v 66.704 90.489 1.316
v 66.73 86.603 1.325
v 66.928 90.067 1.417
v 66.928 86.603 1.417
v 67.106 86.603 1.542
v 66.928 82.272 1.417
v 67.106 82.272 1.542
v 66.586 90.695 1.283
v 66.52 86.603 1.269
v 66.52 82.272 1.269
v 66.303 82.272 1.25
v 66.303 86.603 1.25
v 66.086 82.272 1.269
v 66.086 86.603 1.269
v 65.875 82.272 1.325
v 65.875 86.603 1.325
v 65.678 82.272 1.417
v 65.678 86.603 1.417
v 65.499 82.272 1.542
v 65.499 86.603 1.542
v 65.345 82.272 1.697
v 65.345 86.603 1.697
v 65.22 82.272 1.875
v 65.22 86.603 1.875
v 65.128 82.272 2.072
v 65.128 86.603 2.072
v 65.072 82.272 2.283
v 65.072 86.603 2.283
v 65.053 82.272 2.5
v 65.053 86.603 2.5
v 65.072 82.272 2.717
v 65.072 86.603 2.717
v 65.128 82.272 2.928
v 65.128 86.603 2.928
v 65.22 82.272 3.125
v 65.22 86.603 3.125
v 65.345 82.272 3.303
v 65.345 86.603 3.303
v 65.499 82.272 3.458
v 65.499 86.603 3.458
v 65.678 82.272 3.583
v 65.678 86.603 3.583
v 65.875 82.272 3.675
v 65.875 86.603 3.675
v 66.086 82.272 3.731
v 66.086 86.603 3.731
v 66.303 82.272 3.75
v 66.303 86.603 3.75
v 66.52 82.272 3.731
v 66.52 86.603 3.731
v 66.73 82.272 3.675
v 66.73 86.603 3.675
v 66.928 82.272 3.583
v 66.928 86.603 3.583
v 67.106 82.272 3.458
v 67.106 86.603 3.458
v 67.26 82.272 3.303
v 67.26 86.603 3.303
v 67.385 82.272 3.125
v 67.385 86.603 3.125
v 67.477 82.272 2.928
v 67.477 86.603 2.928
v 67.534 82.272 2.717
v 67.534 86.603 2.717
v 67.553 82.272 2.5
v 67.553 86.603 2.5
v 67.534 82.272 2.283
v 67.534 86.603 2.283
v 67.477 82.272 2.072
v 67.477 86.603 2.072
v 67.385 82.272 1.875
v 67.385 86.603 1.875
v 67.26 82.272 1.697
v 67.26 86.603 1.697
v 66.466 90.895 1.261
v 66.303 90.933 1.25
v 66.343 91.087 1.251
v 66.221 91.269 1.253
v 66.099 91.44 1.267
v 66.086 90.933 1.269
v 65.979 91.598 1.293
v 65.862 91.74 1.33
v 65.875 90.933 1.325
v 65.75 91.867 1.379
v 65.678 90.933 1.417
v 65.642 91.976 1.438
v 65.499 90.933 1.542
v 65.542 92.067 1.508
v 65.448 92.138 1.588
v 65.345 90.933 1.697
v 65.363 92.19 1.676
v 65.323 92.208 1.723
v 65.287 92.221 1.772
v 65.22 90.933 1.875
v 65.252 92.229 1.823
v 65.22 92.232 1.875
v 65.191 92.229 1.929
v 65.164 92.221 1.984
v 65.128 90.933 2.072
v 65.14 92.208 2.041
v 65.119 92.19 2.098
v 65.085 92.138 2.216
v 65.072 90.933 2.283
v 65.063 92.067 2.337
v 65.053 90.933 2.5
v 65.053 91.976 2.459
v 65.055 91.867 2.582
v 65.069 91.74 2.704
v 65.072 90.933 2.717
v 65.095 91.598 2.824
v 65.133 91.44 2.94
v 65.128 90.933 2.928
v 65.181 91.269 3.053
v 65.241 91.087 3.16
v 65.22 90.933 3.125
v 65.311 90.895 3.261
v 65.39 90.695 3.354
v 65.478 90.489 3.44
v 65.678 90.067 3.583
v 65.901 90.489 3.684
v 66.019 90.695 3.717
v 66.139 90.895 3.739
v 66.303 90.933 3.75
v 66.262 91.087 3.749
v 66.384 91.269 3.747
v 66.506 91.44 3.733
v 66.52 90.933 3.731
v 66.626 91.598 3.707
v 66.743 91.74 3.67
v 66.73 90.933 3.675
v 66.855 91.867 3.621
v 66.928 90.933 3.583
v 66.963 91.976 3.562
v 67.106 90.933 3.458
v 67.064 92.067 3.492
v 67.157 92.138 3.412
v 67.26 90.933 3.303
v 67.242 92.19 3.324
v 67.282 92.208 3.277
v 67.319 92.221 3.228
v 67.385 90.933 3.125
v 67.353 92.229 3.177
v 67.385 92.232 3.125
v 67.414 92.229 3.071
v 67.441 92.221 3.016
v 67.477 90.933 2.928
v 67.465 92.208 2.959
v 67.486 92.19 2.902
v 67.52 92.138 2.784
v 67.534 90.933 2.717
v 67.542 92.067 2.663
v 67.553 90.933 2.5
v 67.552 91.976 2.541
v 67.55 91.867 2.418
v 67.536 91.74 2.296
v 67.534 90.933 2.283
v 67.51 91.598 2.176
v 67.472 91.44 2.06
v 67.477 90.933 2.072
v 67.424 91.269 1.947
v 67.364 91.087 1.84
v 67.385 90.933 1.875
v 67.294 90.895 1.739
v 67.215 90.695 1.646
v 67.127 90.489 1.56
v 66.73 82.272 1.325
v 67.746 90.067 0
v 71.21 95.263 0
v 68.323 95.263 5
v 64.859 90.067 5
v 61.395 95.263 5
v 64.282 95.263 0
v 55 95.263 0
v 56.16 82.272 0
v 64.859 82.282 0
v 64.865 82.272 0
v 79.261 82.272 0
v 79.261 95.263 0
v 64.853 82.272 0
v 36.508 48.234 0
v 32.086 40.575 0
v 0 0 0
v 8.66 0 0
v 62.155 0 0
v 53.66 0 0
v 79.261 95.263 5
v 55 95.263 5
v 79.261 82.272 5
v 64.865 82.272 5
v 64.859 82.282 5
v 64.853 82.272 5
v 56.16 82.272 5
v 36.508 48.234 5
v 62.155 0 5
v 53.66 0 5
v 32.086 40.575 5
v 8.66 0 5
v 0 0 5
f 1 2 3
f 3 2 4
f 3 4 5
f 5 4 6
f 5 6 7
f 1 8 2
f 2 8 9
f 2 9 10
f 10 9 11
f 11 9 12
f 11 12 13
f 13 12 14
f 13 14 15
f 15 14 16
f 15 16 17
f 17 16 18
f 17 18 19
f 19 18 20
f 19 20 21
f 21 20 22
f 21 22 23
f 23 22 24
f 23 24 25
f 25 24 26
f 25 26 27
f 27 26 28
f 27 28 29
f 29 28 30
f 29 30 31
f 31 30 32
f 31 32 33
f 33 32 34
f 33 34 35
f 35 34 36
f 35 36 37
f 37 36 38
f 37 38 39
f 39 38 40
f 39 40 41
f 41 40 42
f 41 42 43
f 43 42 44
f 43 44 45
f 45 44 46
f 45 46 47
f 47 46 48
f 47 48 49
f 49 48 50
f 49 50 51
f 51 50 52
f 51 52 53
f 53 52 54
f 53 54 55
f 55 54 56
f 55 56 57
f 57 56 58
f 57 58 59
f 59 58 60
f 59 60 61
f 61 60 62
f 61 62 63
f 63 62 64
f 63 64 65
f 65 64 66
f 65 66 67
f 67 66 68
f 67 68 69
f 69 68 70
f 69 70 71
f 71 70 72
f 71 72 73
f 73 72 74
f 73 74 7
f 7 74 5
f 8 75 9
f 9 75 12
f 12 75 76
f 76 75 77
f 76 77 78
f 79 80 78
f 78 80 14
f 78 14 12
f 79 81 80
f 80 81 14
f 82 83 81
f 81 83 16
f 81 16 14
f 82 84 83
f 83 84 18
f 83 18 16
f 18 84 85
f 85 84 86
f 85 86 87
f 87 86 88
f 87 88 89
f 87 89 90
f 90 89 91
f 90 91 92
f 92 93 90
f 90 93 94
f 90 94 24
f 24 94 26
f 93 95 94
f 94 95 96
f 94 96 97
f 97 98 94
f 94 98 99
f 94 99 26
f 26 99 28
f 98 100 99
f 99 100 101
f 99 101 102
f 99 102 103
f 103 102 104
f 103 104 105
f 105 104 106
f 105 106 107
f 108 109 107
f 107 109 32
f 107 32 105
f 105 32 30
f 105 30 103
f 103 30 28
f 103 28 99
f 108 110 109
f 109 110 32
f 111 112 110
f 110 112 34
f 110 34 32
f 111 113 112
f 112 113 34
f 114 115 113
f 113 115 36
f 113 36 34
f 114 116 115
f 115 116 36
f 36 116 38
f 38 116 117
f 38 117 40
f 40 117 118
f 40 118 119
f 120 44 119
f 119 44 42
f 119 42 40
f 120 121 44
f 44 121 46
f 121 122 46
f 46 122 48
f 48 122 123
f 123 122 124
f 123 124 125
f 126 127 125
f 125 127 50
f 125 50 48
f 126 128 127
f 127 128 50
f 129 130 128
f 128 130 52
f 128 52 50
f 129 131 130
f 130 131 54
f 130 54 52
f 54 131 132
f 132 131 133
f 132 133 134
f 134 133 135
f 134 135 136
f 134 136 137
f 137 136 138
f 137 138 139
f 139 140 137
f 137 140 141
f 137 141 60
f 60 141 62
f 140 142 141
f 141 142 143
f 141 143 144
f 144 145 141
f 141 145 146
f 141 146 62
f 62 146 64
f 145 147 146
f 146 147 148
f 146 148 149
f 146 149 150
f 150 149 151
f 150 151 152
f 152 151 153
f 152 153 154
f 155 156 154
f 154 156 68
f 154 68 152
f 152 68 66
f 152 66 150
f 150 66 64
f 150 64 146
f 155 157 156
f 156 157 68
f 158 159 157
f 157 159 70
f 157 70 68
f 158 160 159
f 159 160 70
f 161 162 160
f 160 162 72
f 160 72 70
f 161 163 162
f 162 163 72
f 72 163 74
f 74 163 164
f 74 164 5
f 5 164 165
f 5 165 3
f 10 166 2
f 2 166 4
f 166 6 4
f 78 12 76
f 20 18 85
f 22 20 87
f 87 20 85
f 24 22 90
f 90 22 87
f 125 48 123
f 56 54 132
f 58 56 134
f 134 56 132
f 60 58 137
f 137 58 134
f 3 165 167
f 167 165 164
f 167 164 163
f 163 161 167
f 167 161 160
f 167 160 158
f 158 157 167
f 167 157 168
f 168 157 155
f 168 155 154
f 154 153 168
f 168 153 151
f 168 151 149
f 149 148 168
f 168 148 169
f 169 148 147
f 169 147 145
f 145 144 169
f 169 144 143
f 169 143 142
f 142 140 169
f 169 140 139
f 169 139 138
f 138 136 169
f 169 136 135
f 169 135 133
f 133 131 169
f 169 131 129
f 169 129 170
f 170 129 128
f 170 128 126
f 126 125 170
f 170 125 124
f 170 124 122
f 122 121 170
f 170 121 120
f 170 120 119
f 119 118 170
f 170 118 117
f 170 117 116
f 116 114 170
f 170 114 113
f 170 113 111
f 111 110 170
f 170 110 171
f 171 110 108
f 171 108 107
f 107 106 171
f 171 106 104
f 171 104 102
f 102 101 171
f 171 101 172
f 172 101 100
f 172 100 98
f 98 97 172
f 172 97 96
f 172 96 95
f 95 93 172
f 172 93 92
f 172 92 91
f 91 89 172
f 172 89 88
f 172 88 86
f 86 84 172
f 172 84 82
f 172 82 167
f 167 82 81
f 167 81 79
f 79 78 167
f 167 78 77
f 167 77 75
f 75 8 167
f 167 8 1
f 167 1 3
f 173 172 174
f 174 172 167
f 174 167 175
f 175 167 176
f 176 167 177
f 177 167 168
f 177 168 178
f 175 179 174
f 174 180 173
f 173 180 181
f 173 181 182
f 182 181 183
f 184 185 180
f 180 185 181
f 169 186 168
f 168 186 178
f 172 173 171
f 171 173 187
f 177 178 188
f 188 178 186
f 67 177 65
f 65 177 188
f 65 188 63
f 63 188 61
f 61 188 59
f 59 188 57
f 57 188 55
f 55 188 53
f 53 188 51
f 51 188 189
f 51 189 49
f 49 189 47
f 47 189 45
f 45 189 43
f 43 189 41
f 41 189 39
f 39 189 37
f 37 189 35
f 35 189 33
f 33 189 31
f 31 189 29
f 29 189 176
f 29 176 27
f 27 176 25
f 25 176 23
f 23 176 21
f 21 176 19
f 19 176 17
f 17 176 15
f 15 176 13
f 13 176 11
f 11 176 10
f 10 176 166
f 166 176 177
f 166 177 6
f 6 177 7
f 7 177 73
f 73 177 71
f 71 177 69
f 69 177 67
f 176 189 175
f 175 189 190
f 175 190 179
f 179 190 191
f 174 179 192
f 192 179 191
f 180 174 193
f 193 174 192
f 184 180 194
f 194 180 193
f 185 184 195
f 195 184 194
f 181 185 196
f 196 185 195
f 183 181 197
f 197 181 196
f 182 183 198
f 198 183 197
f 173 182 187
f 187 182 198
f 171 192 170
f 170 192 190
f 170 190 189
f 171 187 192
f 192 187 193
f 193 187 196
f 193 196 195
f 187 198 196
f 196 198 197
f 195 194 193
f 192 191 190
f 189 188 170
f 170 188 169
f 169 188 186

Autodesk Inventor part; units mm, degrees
ref_plane "YZ Plane" through (0, 0, 0) normal (1, 0, 0) x (0, 1, 0)
ref_plane "XZ Plane" through (0, 0, 0) normal (0, 1, 0) x (-1, 0, 0)
sketch "Sketch1" plane through (0, 0, 0) normal (0, 0, 1) x (1, 0, 0)
  line L0 (0, 0) -> (55, 95.2628)
  line L1 (0, 0) -> (8.6603, 0)
  line L2 (64.8592, 0) -> (64.8592, 115) construction
  line L3 (64.8592, 0) -> (179.8592, 0) construction
  line L4 (56.1603, 82.2724) -> (65.4694, 82.2724) construction
  line L5 (79.2606, 82.2724) -> (79.2606, 95.2628)
  line L6 (55, 95.2628) -> (79.2606, 95.2628)
  line L7 (64.8592, 82.2724) -> (64.8592, 82.2824) construction
  line L8 (64.8592, 82.2824) -> (64.865, 82.2724)
  line L9 (64.8592, 82.2824) -> (64.8707, 82.2824) construction
  line L10 (64.8592, 82.2824) -> (64.8534, 82.2724)
  line L11 (64.8592, 82.2824) -> (64.8707, 82.2824) construction
  line L12 (64.865, 82.2724) -> (79.2606, 82.2724)
  line L13 (56.1603, 82.2724) -> (64.8534, 82.2724)
  line L14 (8.6603, 0) -> (53.6603, 0) construction
  line L15 (53.6603, 0) -> (32.0862, 40.5749)
  line L16 (53.6603, 0) -> (99.6142, 0) construction
  line L17 (36.5081, 48.2339) -> (62.1545, 0)
  line L18 (8.6603, 0) -> (32.0862, 40.5749)
  line L19 (36.5081, 48.2339) -> (56.1603, 82.2724)
  line L20 (62.1545, 0) -> (53.6603, 0)
  line L21 (79.2606, 95.2628) -> (79.2606, 82.2724) construction
  line L22 (64.8534, 82.2724) -> (64.865, 82.2724)
  dimension "d7" = 110
  dimension "d10" = 64.8592
  dimension "d11" = 115
  dimension "d12" = 90
  dimension "d15" = 95
  dimension "d22" = 0.01
  dimension "d23" = 60
  dimension "d24" = 120
  dimension "d27" = 45
  dimension "d28" = 118
  dimension "d29" = 7.5
  dimension "d43" = 7.5
  dimension "d44" = 7.5
  dimension "d45" = 24.2606
  dimension "d46" = 60
extrude "Extrusion2" add sketch "Sketch1" along normal blind 5 contours L0 L6 L5 L12 L8 L10 L13 L19 L17 L20 L15 L18 L1
ref_plane "Work Plane2" through (64.8592, 82.2824, 5) normal (0.866, 0, 0.5) x (0, 1, 0)
ref_plane "Work Plane1" through (79.2606, 95.2628, 5) normal (0.866, 0, 0.5) x (0, 1, 0)
sketch "Sketch2" plane through (64.8592, 82.2824, 5) normal (0.866, 0, 0.5) x (0, 1, 0)
  line L0 (12.9804, -7.2007) -> (12.9804, 4.9296) construction
  line L1 (-0.01, 0.0029) -> (0, 0) construction
  line L2 (0, 0) -> (12.9804, 0) construction
  circle A0 centre (12.9804, 0) radius 2
  point P0 (-82.2824, 28.0995)
  dimension "d33" = 4
ref_plane "Work Plane3" through (64.8592, 82.2824, 5) normal (0.5, 0, -0.866) x (0, 1, 0)
sketch "Sketch3" plane through (64.8592, 82.2824, 5) normal (0.5, 0, -0.866) x (0, 1, 0)
  line L0 (-101.735, 0) -> (34.4329, 0) construction
  line L1 (12.9804, -11.0383) -> (12.9804, 9.972) construction
  line L2 (12.9804, 12.472) -> (12.9804, -8.5383) projected
  line L3 (12.9804, 0) -> (12.9804, 3)
  line L4 (12.9804, 3) -> (7.7842, 0)
  line L5 (7.7842, 0) -> (12.9804, -3)
  line L6 (12.9804, -3) -> (12.9804, 3)
  point P0 (-82.2824, -58.6697)
  dimension "d38" = 3
  dimension "d39" = 60
  dimension "d40" = 60
extrude "Extrusion4" cut sketch "Sketch3" along normal through all both and the other way through all
sketch "Sketch4" plane through (79.2606, 95.2628, 5) normal (0, 1, 0) x (1, 0, 0)
  line L0 (-14.3957, 0) -> (0, 0) construction
  line L1 (0, 5) -> (-14.3957, 5) construction
  line L2 (-14.3957, 0) -> (-14.3957, 5) construction
  line L3 (-14.4072, 5) -> (-14.4072, 0) construction
  line L4 (-14.4072, 2.5) -> (-9.494, 2.5) construction
  line L5 (-8.0506, 5) -> (-10.9373, 0) construction
  line L6 (-11.5147, 5) -> (-14.4014, 0) projected
  circle A0 centre (-12.9581, 2.5) radius 1.25
  point P0 (-79.2606, 5)
  dimension "d47" = 2.5
extrude "Extrusion5" cut sketch "Sketch4" against normal through all
equation "\"d15\" = d7 - 2 * d9"
equation "\"d44\" = d43"
equation "\"d9\" = 7.5"
properties part number "TableSupport"
